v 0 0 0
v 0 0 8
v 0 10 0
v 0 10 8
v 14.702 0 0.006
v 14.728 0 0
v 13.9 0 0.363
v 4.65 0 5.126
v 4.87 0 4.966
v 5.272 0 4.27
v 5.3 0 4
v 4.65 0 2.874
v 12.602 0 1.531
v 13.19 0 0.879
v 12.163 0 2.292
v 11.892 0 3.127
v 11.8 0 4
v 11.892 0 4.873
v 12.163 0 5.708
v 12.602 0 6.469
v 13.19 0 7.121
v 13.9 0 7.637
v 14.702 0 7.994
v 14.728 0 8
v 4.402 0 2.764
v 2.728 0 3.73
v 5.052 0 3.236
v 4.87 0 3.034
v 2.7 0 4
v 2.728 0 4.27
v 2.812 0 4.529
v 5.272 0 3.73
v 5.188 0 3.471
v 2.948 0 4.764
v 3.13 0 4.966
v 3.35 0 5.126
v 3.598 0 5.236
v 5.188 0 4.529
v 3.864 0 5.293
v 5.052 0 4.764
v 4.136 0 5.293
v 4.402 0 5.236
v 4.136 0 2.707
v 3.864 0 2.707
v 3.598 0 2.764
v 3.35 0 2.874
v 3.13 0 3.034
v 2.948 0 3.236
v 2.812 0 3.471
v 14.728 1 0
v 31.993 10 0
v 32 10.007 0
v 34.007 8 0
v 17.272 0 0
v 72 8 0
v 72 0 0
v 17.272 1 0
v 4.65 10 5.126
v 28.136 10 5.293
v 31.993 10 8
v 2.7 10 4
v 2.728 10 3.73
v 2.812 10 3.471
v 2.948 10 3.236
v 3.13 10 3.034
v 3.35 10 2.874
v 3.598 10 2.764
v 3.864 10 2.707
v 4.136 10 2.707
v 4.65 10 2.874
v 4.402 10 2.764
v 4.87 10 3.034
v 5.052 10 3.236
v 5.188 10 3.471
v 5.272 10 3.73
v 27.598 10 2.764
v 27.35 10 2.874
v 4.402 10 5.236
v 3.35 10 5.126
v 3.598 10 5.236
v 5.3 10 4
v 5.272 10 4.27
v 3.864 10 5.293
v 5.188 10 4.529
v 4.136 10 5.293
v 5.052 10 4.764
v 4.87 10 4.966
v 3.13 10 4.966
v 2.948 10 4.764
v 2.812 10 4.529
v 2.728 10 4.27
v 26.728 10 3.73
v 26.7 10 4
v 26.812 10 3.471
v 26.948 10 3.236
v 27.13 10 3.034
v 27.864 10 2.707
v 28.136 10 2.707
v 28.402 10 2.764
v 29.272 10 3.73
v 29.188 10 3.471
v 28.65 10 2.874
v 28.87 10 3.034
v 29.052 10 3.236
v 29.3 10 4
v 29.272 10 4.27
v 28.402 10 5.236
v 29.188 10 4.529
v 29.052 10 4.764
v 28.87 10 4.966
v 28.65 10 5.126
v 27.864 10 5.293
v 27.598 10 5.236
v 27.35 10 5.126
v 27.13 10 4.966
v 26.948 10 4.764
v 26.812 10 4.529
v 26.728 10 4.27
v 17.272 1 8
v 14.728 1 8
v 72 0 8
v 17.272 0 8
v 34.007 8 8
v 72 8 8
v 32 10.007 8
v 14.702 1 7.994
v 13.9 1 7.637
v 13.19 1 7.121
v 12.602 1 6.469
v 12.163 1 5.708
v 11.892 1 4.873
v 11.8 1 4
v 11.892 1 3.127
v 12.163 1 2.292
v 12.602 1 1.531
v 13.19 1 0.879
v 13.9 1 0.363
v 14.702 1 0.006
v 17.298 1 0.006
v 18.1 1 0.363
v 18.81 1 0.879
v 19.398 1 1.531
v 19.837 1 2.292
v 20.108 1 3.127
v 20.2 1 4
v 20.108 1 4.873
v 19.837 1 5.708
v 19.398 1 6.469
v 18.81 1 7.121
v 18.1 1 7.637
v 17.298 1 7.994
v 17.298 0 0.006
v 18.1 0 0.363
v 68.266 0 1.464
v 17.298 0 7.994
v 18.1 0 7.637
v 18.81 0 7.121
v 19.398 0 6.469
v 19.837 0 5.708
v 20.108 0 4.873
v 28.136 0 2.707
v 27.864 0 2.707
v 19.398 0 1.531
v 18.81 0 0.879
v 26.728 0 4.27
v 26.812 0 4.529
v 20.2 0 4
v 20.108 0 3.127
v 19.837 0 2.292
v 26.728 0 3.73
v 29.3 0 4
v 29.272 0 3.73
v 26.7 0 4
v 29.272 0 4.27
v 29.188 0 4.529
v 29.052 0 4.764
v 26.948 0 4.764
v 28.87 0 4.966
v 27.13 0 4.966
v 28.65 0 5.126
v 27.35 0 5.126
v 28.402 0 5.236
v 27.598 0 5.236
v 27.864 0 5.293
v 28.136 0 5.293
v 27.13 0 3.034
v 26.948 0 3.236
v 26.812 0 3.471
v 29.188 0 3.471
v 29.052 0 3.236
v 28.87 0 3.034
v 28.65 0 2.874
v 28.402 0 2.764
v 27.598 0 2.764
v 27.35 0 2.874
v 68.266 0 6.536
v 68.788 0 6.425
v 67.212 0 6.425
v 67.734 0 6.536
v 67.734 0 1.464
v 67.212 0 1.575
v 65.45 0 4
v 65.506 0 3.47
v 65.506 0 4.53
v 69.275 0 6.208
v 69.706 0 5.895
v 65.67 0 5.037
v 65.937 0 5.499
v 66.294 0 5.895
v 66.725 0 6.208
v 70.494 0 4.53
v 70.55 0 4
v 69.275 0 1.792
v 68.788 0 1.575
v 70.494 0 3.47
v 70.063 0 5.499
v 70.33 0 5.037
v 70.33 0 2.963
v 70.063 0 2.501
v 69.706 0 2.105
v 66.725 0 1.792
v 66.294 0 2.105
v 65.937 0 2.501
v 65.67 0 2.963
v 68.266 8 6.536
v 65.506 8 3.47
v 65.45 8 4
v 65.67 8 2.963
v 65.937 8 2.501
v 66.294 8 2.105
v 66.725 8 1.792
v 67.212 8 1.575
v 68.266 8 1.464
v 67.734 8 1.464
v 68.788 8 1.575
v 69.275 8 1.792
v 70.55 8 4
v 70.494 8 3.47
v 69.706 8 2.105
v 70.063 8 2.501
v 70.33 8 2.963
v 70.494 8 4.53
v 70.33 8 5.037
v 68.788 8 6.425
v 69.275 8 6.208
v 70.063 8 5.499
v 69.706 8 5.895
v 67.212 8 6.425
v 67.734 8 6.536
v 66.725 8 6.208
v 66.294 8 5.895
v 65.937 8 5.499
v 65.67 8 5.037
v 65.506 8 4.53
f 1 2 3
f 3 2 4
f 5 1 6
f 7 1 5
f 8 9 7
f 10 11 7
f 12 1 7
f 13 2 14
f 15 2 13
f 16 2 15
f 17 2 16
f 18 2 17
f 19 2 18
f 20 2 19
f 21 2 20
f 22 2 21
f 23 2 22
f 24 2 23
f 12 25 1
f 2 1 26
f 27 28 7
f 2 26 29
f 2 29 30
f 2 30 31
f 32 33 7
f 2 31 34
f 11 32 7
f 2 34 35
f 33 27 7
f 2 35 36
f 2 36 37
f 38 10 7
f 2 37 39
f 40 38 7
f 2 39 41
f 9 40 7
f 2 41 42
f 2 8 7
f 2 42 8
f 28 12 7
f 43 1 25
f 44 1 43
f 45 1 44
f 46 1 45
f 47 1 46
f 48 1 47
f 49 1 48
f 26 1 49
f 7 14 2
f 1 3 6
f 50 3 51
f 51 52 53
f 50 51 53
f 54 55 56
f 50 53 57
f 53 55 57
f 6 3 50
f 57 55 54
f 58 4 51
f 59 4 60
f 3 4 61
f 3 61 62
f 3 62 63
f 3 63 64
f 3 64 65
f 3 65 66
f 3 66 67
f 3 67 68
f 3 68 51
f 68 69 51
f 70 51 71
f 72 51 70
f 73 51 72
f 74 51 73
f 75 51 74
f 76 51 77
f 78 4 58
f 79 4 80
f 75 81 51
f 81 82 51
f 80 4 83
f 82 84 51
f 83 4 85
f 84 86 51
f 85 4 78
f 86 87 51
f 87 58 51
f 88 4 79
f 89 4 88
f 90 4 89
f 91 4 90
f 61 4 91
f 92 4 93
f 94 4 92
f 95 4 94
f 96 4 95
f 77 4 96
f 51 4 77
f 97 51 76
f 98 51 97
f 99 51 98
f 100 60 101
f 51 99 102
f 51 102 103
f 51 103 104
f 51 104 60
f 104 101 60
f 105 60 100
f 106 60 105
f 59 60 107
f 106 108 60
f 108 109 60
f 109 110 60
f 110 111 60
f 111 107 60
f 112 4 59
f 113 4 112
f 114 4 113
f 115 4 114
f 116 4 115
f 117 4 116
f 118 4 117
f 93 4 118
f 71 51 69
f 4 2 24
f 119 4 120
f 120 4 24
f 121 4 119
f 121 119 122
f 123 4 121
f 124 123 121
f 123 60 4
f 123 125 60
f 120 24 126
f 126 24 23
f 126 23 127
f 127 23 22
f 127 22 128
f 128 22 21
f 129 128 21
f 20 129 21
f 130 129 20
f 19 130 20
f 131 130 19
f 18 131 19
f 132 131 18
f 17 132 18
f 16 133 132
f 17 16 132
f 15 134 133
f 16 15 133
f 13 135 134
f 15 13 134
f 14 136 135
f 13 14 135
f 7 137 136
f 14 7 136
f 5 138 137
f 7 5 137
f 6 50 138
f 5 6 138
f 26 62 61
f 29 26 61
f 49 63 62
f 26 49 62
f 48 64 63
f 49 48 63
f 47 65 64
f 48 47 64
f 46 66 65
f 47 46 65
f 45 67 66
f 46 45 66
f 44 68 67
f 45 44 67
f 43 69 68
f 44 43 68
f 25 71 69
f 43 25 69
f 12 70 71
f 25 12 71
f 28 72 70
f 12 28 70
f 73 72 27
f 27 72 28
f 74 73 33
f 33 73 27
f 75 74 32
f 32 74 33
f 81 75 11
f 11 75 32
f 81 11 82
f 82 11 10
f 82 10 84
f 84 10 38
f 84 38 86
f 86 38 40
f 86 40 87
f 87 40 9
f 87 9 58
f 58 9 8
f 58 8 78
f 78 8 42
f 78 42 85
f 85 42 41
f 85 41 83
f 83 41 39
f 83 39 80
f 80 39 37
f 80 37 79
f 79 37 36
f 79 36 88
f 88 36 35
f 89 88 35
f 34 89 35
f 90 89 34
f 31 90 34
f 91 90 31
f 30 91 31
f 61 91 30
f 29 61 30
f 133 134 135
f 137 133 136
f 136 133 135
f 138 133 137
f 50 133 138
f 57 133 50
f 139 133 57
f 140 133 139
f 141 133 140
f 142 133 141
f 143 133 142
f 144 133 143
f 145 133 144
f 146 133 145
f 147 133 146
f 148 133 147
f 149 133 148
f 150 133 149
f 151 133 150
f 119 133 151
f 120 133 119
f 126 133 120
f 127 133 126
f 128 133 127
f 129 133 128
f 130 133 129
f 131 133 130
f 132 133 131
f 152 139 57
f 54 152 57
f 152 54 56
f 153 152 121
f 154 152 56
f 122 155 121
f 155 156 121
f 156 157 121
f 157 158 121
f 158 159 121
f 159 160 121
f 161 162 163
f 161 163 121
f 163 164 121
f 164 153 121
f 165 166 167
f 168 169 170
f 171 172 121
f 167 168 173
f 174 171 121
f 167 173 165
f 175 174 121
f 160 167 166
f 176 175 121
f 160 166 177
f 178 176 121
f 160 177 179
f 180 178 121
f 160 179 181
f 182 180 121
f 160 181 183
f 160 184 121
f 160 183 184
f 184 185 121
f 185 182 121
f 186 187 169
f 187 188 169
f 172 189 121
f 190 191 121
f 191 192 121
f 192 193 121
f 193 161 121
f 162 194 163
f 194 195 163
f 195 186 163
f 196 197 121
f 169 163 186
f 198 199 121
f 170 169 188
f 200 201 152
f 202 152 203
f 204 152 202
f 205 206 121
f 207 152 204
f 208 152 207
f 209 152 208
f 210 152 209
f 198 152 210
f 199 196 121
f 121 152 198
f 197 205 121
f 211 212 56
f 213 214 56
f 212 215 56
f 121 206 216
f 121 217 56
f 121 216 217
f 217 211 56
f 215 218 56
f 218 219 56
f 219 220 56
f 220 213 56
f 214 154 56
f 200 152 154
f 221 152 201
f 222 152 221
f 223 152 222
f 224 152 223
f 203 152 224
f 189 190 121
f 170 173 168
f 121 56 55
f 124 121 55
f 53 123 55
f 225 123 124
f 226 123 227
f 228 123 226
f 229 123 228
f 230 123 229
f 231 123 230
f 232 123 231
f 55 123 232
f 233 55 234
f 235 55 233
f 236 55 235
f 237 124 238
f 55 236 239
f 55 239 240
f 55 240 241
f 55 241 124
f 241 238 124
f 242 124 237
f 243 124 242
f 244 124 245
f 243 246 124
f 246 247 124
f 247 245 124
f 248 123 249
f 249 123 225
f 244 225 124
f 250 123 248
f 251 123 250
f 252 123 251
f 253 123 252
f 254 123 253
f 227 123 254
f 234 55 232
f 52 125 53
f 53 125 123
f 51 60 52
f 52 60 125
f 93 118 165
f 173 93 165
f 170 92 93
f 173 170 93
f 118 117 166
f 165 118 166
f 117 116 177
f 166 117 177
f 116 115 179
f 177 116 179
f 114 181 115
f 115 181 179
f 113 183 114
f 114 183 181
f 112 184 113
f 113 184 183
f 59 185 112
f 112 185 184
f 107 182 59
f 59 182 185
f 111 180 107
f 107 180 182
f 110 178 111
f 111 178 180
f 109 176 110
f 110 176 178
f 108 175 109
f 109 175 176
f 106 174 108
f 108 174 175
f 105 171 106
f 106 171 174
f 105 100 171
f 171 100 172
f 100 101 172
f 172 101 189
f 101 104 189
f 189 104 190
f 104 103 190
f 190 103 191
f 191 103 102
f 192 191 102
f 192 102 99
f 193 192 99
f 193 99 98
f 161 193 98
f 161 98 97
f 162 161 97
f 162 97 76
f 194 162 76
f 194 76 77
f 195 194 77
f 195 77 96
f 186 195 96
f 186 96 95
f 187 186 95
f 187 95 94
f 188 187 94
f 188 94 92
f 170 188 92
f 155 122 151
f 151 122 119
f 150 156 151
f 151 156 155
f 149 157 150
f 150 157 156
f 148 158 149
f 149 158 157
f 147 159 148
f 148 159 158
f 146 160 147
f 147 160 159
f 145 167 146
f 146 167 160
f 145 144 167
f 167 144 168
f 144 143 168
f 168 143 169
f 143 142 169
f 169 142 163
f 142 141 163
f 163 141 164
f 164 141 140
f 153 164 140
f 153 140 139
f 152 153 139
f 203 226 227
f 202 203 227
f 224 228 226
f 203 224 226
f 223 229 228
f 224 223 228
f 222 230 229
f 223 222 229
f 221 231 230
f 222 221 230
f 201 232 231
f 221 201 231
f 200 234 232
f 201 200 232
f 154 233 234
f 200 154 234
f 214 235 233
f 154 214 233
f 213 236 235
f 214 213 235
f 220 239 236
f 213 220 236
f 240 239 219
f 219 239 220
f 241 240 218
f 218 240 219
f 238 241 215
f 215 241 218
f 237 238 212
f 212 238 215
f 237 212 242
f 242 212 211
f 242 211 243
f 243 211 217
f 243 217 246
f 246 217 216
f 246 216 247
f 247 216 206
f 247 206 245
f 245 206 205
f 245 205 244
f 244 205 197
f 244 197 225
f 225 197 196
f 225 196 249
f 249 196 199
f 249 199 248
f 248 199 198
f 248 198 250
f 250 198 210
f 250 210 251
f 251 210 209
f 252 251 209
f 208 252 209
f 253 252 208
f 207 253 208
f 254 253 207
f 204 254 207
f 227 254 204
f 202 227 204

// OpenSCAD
// Description: "Tapster - Mobile Automation Robot"
// Project home: http://tapsterbot.com

beam_width     = 8;
hole_diameter  = 5.1;
hole_radius    = hole_diameter / 2;
beam_length = 72;

difference() {
    // Draw the beam...
    union(){
        cube([beam_length,beam_width,beam_width]);

        translate([0,6,0])
        cube([32,4,8]);

        translate([32.0,4.35,0])
        rotate([0,0,45])
        cube([4,4,8]);
    }
    
    rotate([90,0,0])
    translate([16,4,-1])
    cylinder(r=4.2, h=5, $fn=30);

    // Hole #1 for servo
    rotate([90,0,0])
    translate([4,beam_width/2,-12])
    cylinder(r=1.3, h=14, $fn=30);

    // Hole #2 for servo
    rotate([90,0,0])
    translate([28,beam_width/2,-12])
    cylinder(r=1.3, h=14, $fn=30);

    // Hole for connecting to lower arm
    rotate([90,0,0])
    translate([4+8*8,beam_width/2,-10])
    cylinder(r=hole_radius, h=12, $fn=30);
}
